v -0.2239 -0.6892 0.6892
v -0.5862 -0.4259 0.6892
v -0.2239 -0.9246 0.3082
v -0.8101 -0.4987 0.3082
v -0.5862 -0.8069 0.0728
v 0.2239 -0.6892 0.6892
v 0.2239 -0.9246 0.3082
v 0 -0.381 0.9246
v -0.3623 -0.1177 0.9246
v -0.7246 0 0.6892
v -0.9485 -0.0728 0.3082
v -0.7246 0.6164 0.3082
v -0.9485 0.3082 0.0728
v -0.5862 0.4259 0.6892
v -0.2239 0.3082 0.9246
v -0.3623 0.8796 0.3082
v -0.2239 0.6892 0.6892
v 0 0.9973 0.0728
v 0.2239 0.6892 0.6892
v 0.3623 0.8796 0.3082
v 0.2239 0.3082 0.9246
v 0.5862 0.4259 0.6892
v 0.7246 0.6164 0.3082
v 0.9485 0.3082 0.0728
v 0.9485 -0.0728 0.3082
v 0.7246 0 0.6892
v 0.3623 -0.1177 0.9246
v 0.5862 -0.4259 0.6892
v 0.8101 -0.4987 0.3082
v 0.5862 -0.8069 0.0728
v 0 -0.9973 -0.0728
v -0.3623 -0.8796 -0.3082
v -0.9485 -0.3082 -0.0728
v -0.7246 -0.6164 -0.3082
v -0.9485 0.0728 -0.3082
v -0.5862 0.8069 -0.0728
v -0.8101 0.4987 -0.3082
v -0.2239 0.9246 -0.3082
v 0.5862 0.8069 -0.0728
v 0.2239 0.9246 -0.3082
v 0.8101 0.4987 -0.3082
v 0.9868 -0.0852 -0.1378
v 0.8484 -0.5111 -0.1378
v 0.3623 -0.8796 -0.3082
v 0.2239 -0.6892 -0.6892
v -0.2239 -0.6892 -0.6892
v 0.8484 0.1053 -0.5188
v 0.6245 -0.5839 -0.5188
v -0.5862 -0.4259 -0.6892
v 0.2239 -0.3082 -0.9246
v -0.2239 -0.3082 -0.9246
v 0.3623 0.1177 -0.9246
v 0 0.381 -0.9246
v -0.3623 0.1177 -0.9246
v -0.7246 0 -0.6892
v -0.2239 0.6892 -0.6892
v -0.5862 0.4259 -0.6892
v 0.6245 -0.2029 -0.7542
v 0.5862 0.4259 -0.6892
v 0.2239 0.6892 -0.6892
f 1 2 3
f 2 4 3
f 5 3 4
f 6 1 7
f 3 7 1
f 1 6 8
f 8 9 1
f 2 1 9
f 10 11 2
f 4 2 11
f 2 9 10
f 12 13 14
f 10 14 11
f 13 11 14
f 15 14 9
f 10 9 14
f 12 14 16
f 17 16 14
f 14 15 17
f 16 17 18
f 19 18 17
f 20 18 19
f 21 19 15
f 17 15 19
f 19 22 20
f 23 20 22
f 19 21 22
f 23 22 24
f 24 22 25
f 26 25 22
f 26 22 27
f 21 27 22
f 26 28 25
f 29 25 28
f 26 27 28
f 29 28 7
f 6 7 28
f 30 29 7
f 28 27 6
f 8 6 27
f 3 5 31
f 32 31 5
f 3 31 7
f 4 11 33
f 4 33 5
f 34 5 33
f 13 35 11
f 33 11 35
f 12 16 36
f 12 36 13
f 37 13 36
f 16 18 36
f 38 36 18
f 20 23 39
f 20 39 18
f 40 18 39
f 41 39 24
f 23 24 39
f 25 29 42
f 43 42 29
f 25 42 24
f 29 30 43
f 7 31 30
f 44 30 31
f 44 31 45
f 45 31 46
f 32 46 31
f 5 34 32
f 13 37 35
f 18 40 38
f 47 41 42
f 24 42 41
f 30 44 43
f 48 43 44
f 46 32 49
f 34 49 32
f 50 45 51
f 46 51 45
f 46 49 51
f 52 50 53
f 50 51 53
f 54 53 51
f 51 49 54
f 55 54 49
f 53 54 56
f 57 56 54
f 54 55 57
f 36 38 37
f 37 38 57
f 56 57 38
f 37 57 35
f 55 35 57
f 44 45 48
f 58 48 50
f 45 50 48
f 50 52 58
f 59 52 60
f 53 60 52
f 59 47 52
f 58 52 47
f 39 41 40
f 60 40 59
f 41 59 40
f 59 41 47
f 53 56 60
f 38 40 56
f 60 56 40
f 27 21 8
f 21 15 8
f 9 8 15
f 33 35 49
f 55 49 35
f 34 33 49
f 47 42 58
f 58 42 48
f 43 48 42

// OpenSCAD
polyhedron( points = [[-0.223918979533893, -0.6891517575305, 0.68915175734235], [-0.586227499460078, -0.425919209505684, 0.68915175734235], [-0.724617039890013, 1.09051077901903e-10, 0.68915175734235], [-0.586227500069863, 0.425919209711357, 0.68915175734235], [-0.223918980520547, 0.689151757703639, 0.68915175734235], [0.223918978711401, 0.689151757703643, 0.68915175734235], [0.586227498661221, 0.425919209711357, 0.68915175734235], [0.724617039129402, 1.09051077901903e-10, 0.68915175734235], [0.586227499347501, -0.425919209505682, 0.68915175734235], [0.223918979821818, -0.6891517575305, 0.68915175734235], [-0.223918979513787, -0.92459410617334, 0.308198035226248], [-0.810146479123647, -0.498674896561646, 0.308198035217418], [-0.94853601919018, -0.0727556868220727, 0.308198035168051], [-0.724617039405663, 0.616396070570952, 0.308198035202707], [-0.362308519599073, 0.879628618385115, 0.308198035168051], [0.362308520102337, 0.879628618302717, 0.308198035202707], [0.724617039838495, 0.616396070391615, 0.308198035168051], [0.948536019466287, -0.0727556870523331, 0.308198035202707], [0.810146479295054, -0.498674896438777, 0.308198035168051], [0.223918979772313, -0.924594106157884, 0.308198035251256], [3.27818885084154e-11, -0.997349792441076, -0.0727556870670224], [-0.58622749949129, -0.806872931925752, 0.0727556868643716], [-0.94853601899937, 0.308198035407527, 0.0727556867351256], [2.98665537416288e-10, 0.997349792526511, 0.0727556867244983], [0.94853601947789, 0.308198035049126, 0.0727556867244983], [0.586227499640356, -0.806872931682349, 0.0727556867279378], [-0.362308519760607, -0.879628618801013, -0.30819803518032], [-0.22391897945779, -0.689151757677461, -0.689151757244412], [-0.223918979288122, -0.308198035429877, -0.924594105648236], [-0.36230851931641, 0.11772117419199, -0.924594105697605], [-0.586227498942234, 0.425919209583074, -0.689151757373653], [-0.81014647867945, 0.498674896496423, -0.308198035340077], [0.362308519999361, -0.879628618592454, -0.308198035409586], [0.223918979864005, -0.689151757645813, -0.689151757536805], [0.223918979875613, -0.308198035649632, -0.924594105949944], [0.362308520029738, 0.117721173742365, -0.924594105951256], [0.586227499677907, 0.425919209012918, -0.689151757540236], [0.810146479325435, 0.498674895961114, -0.308198035413832], [-1.46081053272036e-09, 0.380953723974585, -0.924594104050381], [-0.223918981423901, 0.689151758580618, -0.689151755080544], [0.223918979515677, 0.689151757230655, -0.689151757658675], [-0.223918979291685, 0.924594105305174, -0.308198035252422], [0.223918980085823, 0.924594106238195, -0.308198035361121], [0.586227499894499, 0.806872932012776, -0.0727556867368449], [-0.586227499736364, 0.806872931918475, -0.0727556867368449], [1.55570130450987e-10, -0.38095372175487, 0.924594105425098], [0.362308519425247, -0.117721174123479, 0.924594105671623], [0.223918978962321, 0.308198035418508, 0.924594105671623], [-0.223918980210632, 0.308198035404858, 0.924594105671624], [-0.362308519704244, -0.117721173893407, 0.924594105367531], [-0.948536018796226, -0.308198034915035, -0.0727556871722374], [-0.948536018903344, 0.0727556869485832, -0.308198035363522], [-0.72461703919341, 3.18930937637861e-11, -0.689151757343147], [-0.586227499189157, -0.425919209535754, -0.689151757281573], [-0.724617039204888, -0.616396070222684, -0.308198035353432], [0.986785947105871, -0.0851838424207178, -0.137830351548113], [0.848396407351181, -0.511103051481586, -0.137830351542923], [0.624477427741898, -0.583858738369182, -0.518784073634028], [0.624477427760681, -0.202905016417085, -0.754226422006284], [0.848396406990327, 0.105293018523774, -0.518784073507604]], faces = [[0, 1, 11, 21, 10], [0, 10, 19, 9], [0, 9, 45], [0, 45, 49, 1], [1, 2, 12, 11], [1, 49, 2], [2, 3, 13, 22, 12], [2, 49, 48, 3], [3, 4, 14, 13], [3, 48, 4], [4, 5, 15, 23, 14], [4, 48, 47, 5], [5, 6, 16, 15], [5, 47, 6], [6, 7, 17, 24, 16], [6, 47, 46, 7], [7, 8, 18, 17], [7, 46, 8], [8, 9, 19, 25, 18], [8, 46, 45, 9], [10, 21, 26, 20], [10, 20, 19], [11, 12, 50], [11, 50, 54, 21], [12, 22, 51, 50], [13, 14, 44], [13, 44, 31, 22], [14, 23, 41, 44], [15, 16, 43], [15, 43, 42, 23], [16, 24, 37, 43], [17, 18, 56, 55], [17, 55, 24], [18, 25, 56], [19, 20, 32, 25], [20, 26, 27, 33, 32], [21, 54, 26], [22, 31, 51], [23, 42, 41], [24, 55, 59, 37], [25, 32, 57, 56], [26, 54, 53, 27], [27, 28, 34, 33], [27, 53, 28], [28, 29, 38, 35, 34], [28, 53, 52, 29], [29, 30, 39, 38], [29, 52, 30], [30, 31, 44, 41, 39], [30, 52, 51, 31], [32, 33, 57], [33, 34, 58, 57], [34, 35, 58], [35, 38, 40, 36], [35, 36, 59, 58], [36, 40, 42, 43, 37], [36, 37, 59], [38, 39, 40], [39, 41, 42, 40], [45, 46, 47, 48, 49], [50, 51, 52, 53, 54], [55, 56, 57, 58, 59]]);
